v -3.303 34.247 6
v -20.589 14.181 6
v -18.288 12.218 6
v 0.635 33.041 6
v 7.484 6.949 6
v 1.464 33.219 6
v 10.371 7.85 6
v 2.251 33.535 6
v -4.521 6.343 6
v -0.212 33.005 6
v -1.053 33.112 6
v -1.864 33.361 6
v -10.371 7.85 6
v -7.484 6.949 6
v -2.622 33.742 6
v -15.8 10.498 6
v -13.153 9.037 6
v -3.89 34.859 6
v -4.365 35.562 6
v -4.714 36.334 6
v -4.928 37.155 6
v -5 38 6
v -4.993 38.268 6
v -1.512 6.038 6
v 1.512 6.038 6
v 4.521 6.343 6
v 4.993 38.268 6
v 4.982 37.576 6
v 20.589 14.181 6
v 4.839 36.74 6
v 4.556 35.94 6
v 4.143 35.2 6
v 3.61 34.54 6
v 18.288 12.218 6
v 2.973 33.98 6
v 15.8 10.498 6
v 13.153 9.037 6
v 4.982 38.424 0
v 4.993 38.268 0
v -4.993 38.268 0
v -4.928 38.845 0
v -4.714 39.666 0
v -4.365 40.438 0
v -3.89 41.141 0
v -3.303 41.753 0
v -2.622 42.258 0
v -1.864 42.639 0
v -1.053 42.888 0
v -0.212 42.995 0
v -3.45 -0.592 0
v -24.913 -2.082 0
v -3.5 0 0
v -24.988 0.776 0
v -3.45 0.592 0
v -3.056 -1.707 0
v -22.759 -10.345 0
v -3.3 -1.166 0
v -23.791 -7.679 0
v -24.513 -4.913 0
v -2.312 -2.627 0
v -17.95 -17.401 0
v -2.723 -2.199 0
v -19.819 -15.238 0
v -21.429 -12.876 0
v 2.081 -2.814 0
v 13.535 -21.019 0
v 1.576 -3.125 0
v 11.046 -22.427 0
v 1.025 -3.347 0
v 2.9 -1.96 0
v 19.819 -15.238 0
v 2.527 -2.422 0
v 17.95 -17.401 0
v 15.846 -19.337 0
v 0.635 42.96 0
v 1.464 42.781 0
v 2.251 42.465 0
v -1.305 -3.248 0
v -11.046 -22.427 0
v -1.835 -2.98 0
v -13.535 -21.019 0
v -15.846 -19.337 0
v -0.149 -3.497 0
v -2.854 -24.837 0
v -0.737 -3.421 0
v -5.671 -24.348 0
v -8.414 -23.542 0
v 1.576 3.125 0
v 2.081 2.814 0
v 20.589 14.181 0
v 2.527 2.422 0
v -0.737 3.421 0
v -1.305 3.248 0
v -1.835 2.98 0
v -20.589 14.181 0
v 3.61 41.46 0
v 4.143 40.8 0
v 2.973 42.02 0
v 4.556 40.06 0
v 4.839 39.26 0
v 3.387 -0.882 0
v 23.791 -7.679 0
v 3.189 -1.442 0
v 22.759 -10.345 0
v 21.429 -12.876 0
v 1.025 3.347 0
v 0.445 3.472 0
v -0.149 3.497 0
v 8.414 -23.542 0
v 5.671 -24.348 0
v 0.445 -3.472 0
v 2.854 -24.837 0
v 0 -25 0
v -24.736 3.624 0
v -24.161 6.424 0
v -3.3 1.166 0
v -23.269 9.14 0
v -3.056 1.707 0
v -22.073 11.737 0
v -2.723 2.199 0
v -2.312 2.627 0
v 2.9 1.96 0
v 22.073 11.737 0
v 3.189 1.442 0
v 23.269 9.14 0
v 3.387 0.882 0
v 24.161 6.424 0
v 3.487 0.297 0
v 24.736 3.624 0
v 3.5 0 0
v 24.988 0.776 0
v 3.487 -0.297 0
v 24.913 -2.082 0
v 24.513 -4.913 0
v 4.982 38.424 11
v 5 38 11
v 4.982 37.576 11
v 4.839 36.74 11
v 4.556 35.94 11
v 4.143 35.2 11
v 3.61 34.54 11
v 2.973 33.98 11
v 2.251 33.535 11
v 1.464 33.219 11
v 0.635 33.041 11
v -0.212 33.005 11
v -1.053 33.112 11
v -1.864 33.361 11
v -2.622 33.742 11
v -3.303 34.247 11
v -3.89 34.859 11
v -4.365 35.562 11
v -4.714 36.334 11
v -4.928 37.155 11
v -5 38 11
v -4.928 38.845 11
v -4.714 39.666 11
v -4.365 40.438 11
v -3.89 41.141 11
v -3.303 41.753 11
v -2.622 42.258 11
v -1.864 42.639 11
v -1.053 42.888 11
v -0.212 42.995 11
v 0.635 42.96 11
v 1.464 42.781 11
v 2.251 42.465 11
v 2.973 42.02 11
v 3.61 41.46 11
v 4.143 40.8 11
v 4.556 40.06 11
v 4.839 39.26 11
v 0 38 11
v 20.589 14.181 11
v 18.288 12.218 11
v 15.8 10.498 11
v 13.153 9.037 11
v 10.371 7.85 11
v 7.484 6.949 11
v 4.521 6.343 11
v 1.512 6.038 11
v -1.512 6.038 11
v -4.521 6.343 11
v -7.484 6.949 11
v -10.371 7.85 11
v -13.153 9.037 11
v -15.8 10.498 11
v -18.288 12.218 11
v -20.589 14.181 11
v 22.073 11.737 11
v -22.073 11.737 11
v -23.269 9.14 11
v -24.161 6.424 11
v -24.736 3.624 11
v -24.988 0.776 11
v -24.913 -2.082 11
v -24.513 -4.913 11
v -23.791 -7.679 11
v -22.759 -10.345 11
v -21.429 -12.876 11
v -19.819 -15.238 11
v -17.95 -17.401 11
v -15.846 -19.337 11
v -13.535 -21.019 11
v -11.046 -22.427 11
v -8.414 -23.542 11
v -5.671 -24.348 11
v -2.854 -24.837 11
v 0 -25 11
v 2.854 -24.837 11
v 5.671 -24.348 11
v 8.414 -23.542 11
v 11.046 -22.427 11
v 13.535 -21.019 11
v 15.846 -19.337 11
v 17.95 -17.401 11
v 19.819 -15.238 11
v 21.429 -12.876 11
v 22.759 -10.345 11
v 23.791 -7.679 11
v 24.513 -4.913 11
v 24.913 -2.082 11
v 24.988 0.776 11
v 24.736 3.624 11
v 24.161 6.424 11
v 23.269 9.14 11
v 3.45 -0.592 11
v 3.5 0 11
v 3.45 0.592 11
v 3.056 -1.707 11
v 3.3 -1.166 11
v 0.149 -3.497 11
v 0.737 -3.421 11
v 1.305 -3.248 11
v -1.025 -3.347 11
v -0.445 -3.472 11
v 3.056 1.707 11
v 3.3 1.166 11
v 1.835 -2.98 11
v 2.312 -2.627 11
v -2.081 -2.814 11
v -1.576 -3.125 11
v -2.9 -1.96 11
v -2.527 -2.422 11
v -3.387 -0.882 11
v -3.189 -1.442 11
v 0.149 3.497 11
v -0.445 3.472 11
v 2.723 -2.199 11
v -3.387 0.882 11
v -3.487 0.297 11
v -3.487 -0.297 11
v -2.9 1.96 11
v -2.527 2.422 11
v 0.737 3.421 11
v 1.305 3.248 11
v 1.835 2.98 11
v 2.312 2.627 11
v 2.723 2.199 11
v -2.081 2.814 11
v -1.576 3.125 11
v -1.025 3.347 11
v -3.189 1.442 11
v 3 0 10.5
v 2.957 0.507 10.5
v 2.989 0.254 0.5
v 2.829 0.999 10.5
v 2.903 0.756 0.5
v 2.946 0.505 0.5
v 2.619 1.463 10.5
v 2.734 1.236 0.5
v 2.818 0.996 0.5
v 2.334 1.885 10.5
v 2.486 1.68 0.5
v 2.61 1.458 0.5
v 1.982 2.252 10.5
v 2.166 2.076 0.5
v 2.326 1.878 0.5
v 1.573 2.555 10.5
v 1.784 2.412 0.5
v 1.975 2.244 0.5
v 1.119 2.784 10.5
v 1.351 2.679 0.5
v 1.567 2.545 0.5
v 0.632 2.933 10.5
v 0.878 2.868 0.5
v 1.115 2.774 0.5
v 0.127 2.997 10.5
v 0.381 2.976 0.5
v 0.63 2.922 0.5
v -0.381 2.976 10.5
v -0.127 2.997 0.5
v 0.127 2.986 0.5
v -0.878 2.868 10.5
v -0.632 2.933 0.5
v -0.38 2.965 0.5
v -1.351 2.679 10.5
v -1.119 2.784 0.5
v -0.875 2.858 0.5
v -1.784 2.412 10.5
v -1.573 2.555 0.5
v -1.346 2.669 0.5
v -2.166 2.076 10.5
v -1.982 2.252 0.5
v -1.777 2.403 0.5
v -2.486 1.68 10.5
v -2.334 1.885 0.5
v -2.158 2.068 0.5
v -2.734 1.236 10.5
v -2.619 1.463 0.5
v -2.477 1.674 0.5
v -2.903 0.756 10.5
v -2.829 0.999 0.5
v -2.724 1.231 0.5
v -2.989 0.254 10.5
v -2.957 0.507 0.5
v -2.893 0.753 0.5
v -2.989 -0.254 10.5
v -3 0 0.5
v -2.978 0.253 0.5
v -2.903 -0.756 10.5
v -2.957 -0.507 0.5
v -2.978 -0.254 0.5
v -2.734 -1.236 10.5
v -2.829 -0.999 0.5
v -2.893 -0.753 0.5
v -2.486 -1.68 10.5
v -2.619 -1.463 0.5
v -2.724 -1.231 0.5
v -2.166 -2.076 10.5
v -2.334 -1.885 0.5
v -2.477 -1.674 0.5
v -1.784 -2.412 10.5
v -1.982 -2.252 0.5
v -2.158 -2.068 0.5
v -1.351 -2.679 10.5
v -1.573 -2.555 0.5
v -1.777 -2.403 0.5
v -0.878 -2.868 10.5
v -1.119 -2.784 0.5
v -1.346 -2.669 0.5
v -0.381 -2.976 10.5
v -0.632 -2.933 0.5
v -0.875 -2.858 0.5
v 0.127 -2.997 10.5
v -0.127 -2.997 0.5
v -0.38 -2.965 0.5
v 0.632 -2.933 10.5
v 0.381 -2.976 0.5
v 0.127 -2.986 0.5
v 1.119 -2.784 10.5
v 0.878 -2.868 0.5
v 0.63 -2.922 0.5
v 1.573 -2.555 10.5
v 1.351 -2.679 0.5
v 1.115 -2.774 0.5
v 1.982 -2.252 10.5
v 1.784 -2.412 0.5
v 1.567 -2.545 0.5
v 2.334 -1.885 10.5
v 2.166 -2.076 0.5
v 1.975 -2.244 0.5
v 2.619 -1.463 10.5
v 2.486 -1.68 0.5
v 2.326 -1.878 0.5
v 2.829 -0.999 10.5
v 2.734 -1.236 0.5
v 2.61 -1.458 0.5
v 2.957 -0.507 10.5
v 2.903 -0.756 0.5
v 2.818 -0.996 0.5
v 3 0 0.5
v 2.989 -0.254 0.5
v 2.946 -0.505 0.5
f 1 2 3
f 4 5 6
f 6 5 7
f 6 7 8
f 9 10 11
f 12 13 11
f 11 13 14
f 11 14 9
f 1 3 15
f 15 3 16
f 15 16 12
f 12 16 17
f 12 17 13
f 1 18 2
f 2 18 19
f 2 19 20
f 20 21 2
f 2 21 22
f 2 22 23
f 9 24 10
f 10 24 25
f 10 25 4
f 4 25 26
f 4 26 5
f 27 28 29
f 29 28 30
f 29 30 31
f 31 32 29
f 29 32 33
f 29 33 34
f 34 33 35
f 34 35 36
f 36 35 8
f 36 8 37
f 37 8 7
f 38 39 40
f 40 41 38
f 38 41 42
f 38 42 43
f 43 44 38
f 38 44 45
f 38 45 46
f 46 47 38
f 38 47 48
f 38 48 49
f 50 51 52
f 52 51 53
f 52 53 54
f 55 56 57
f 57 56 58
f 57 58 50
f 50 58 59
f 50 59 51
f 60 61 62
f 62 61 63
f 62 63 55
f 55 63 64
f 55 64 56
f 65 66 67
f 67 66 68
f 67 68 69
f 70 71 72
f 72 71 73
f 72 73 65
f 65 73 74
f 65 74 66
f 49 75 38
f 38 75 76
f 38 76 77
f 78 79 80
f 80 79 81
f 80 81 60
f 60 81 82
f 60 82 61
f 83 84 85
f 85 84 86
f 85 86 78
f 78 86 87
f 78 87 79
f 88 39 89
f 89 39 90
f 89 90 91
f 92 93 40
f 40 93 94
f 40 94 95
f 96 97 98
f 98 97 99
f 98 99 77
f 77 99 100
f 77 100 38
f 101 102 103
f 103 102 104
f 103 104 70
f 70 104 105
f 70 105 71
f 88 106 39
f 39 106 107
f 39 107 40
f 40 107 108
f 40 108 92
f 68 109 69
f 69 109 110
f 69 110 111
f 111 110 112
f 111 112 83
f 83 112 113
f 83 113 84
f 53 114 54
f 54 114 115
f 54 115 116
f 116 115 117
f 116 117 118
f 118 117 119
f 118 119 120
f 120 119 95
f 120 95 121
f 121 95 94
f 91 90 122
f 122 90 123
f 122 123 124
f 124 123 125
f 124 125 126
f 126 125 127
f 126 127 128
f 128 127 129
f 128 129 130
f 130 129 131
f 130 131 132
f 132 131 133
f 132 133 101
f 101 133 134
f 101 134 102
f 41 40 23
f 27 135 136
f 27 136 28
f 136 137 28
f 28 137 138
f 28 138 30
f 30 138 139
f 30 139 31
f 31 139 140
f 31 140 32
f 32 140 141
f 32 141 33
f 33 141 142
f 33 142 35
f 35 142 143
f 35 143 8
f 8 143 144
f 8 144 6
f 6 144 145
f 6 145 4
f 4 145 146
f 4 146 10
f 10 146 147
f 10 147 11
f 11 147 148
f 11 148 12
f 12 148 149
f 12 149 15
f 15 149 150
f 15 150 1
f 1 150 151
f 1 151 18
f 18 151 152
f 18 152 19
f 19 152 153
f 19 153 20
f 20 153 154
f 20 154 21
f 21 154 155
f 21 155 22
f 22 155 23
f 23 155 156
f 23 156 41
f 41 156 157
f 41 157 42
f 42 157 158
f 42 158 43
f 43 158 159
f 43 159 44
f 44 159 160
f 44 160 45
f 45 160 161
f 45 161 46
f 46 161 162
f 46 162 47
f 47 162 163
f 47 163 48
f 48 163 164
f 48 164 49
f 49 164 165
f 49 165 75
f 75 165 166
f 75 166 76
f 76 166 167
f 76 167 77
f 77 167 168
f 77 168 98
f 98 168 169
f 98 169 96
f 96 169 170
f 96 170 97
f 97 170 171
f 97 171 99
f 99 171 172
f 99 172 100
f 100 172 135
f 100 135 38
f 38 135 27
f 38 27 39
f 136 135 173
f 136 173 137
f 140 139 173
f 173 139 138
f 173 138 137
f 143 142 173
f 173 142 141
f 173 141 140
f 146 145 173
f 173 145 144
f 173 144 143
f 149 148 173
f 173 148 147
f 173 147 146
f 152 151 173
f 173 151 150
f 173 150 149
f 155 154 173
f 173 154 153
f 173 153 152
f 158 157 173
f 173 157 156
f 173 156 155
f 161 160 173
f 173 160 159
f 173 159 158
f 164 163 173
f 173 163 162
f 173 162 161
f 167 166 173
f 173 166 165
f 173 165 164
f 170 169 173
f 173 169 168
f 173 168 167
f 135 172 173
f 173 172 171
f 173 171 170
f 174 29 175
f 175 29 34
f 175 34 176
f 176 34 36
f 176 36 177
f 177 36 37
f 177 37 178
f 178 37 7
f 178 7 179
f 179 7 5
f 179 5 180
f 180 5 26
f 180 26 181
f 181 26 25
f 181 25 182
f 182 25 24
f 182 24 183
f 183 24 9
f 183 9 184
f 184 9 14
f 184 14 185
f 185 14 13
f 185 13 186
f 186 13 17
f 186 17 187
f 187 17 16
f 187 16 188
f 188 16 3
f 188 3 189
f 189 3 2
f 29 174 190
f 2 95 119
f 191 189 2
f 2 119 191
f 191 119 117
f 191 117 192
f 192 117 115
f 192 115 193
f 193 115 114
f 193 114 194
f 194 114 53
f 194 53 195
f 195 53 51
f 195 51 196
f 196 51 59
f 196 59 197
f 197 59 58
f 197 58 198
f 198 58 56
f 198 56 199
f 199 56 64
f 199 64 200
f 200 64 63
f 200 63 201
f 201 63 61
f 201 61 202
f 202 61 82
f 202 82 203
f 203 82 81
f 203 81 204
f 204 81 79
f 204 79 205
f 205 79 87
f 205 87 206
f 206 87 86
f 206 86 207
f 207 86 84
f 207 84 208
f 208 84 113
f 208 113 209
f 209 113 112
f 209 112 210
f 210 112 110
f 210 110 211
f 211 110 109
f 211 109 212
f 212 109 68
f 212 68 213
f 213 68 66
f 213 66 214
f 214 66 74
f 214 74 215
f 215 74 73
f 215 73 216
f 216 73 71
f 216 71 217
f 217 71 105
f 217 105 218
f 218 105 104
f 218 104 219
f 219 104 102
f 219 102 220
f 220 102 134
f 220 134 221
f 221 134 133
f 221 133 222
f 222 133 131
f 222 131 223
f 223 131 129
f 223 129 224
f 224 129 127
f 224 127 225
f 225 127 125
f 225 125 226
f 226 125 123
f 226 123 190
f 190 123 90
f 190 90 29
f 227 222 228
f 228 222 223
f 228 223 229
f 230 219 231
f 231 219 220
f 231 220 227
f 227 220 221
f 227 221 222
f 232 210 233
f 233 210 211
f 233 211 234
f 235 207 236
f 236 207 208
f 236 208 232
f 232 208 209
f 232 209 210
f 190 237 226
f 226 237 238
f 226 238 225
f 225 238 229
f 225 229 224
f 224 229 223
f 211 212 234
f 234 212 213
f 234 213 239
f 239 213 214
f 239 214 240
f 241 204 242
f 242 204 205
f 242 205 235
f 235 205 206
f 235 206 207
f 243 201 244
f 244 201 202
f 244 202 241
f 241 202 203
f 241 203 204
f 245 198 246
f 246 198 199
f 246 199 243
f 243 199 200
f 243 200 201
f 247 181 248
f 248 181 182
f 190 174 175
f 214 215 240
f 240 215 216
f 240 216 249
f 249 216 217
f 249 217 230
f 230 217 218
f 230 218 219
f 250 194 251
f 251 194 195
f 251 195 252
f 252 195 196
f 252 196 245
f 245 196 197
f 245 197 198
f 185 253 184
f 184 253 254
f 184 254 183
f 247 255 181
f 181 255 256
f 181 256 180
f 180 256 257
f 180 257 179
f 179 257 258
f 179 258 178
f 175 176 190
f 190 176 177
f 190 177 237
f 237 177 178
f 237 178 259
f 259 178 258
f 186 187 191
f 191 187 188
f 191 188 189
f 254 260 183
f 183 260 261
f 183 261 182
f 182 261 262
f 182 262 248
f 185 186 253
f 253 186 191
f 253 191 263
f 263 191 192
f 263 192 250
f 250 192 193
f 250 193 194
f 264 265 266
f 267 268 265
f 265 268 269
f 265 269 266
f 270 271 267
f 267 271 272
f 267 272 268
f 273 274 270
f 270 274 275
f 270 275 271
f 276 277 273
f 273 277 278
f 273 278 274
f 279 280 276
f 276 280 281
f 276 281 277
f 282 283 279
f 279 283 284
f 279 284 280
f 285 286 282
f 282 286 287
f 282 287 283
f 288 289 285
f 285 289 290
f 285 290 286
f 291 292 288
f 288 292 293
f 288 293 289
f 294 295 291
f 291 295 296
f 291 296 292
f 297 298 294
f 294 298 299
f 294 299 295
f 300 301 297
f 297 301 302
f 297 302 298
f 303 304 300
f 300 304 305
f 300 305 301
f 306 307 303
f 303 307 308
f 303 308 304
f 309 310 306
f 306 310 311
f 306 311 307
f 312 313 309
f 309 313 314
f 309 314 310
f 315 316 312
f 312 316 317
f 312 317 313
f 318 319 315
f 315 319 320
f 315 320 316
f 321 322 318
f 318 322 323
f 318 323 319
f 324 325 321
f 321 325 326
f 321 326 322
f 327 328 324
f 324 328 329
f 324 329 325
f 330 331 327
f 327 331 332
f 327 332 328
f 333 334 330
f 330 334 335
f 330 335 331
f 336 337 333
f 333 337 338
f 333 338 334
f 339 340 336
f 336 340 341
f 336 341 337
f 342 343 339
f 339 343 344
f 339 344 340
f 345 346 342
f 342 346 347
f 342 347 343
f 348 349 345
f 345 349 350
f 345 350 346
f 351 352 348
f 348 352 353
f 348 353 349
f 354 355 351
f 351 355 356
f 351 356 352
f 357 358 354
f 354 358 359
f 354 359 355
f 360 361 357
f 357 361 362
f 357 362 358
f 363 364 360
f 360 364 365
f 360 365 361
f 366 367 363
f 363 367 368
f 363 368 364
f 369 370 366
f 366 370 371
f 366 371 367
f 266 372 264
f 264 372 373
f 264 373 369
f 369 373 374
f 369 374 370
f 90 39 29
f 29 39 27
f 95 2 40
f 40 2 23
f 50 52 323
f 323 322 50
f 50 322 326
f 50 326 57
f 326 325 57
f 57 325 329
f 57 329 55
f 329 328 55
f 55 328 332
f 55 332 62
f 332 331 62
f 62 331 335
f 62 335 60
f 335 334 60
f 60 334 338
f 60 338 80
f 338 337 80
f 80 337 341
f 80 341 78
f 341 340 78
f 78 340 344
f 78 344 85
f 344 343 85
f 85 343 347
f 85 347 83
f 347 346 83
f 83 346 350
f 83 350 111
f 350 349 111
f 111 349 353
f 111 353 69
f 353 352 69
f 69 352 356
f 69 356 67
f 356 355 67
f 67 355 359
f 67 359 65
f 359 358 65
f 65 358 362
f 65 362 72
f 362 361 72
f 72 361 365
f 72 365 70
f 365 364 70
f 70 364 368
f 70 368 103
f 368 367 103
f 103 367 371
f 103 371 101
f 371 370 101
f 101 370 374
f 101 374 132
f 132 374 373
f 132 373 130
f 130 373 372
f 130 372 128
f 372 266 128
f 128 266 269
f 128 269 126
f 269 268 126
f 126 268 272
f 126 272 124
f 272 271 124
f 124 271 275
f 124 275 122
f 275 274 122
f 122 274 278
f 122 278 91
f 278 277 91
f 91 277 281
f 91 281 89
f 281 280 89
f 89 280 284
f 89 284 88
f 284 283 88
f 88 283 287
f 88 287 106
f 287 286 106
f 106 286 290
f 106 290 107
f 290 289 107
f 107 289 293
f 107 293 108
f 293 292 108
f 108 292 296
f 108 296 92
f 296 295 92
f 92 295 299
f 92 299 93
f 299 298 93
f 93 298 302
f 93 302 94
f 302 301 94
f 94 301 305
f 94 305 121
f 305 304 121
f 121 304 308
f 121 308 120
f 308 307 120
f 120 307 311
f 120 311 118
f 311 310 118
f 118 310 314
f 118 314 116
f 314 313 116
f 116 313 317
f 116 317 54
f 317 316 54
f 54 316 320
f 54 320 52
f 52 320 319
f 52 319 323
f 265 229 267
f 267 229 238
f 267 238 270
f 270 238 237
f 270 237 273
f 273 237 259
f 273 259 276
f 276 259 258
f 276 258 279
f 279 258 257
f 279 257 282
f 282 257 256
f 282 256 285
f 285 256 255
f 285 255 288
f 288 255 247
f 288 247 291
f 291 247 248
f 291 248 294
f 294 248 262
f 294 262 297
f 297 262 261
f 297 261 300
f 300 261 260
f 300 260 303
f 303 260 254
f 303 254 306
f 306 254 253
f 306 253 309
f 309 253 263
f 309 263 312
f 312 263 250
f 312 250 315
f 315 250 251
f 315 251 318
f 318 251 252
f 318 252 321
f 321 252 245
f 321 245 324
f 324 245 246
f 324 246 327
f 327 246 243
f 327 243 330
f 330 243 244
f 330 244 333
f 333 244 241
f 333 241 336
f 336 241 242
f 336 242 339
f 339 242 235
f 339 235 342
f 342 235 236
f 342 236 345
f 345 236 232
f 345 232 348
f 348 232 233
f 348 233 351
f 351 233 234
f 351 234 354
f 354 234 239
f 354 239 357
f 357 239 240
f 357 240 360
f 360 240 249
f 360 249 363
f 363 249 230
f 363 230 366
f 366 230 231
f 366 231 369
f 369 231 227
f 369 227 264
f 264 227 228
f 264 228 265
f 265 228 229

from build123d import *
from build123d.topology import SkipClean

# Parameters (mm, degrees)
SKETCH1_R               = 50
BOSS_EXTRUDE1_DEPTH     = 6
SKETCH2_R               = 4.999999999999999
BOSS_EXTRUDE2_DEPTH     = 5
SKETCH3_R               = 3
CUT_EXTRUDE1_DEPTH      = 72.56116265125938
CUT_EXTRUDE2_DEPTH      = 71.96477999684069
CUT_EXTRUDE2_DEPTH_BACK = 31
SKETCH4_R               = 50
CHAMFER1_SIZE           = 0.5


with BuildPart() as part:
    # Sketch1 → Boss-Extrude1 (new body)
    with BuildSketch(Plane.XY):
        Circle(SKETCH1_R)
    extrude(amount=BOSS_EXTRUDE1_DEPTH)

    # Sketch2 → Boss-Extrude2 (add)
    with BuildSketch(Plane.XY.offset(6)):
        with Locations((0, 38)):
            Circle(SKETCH2_R)
        with BuildLine():
            ThreePointArc((-20.589119557081666, 14.180555555555557), (-4.59e-15, -25.000000000000007), (20.589119557081666, 14.180555555555557))
            ThreePointArc((20.589119557081666, 14.180555555555557), (-4.82e-15, 5.9999999999999964), (-20.589119557081666, 14.180555555555557))
        make_face()
    extrude(amount=BOSS_EXTRUDE2_DEPTH)

    # Sketch3 → Cut-Extrude1 (cut, through all)
    with BuildSketch(Plane.XY.offset(11)):
        Circle(SKETCH3_R)
    extrude(amount=-CUT_EXTRUDE1_DEPTH, mode=Mode.SUBTRACT)

    # Sketch4 → Cut-Extrude2 (cut, two sides: drawn at the far end of the back side and taken through both)
    with SkipClean():  # the faces are left unmerged after this step: merging them gives an invalid solid
        with BuildSketch(Plane.XY.offset(6).offset(-CUT_EXTRUDE2_DEPTH_BACK)):
            Circle(SKETCH4_R)
            with BuildLine():
                ThreePointArc((20.58911955708167, 14.180555555555559), (8.9e-16, -25.000000000000014), (-20.58911955708167, 14.180555555555559))
                Line((-20.589119557081666, 14.180555555555562), (-4.992793047790904, 38.268360917297514))
                ThreePointArc((-4.9927930477907125, 38.268360917297436), (-4.1970479921117985, 40.71749667008265), (-2.2879979935196513, 42.44579185091363))
                ThreePointArc((-2.2879979935196513, 42.44579185091363), (-4.1769426665e-07, 42.999999999999986), (2.287997250726913, 42.44579223318703))
                ThreePointArc((2.287997250726913, 42.44579223318703), (4.1970479585600895, 40.71749672190172), (4.992793086001126, 38.26836020640056))
                Line((4.992793086001273, 38.268360206400615), (20.58911955708167, 14.180555555555559))
            make_face(mode=Mode.SUBTRACT)
        extrude(amount=CUT_EXTRUDE2_DEPTH + CUT_EXTRUDE2_DEPTH_BACK, mode=Mode.SUBTRACT)

    # Chamfer1
    chamfer1_edges = [part.edges().sort_by_distance(p)[0] for p in [
        (-3, 3.7e-16, 0),
        (-3, 3.7e-16, 11),
    ]]
    chamfer(chamfer1_edges, length=CHAMFER1_SIZE)


solid = part.part
